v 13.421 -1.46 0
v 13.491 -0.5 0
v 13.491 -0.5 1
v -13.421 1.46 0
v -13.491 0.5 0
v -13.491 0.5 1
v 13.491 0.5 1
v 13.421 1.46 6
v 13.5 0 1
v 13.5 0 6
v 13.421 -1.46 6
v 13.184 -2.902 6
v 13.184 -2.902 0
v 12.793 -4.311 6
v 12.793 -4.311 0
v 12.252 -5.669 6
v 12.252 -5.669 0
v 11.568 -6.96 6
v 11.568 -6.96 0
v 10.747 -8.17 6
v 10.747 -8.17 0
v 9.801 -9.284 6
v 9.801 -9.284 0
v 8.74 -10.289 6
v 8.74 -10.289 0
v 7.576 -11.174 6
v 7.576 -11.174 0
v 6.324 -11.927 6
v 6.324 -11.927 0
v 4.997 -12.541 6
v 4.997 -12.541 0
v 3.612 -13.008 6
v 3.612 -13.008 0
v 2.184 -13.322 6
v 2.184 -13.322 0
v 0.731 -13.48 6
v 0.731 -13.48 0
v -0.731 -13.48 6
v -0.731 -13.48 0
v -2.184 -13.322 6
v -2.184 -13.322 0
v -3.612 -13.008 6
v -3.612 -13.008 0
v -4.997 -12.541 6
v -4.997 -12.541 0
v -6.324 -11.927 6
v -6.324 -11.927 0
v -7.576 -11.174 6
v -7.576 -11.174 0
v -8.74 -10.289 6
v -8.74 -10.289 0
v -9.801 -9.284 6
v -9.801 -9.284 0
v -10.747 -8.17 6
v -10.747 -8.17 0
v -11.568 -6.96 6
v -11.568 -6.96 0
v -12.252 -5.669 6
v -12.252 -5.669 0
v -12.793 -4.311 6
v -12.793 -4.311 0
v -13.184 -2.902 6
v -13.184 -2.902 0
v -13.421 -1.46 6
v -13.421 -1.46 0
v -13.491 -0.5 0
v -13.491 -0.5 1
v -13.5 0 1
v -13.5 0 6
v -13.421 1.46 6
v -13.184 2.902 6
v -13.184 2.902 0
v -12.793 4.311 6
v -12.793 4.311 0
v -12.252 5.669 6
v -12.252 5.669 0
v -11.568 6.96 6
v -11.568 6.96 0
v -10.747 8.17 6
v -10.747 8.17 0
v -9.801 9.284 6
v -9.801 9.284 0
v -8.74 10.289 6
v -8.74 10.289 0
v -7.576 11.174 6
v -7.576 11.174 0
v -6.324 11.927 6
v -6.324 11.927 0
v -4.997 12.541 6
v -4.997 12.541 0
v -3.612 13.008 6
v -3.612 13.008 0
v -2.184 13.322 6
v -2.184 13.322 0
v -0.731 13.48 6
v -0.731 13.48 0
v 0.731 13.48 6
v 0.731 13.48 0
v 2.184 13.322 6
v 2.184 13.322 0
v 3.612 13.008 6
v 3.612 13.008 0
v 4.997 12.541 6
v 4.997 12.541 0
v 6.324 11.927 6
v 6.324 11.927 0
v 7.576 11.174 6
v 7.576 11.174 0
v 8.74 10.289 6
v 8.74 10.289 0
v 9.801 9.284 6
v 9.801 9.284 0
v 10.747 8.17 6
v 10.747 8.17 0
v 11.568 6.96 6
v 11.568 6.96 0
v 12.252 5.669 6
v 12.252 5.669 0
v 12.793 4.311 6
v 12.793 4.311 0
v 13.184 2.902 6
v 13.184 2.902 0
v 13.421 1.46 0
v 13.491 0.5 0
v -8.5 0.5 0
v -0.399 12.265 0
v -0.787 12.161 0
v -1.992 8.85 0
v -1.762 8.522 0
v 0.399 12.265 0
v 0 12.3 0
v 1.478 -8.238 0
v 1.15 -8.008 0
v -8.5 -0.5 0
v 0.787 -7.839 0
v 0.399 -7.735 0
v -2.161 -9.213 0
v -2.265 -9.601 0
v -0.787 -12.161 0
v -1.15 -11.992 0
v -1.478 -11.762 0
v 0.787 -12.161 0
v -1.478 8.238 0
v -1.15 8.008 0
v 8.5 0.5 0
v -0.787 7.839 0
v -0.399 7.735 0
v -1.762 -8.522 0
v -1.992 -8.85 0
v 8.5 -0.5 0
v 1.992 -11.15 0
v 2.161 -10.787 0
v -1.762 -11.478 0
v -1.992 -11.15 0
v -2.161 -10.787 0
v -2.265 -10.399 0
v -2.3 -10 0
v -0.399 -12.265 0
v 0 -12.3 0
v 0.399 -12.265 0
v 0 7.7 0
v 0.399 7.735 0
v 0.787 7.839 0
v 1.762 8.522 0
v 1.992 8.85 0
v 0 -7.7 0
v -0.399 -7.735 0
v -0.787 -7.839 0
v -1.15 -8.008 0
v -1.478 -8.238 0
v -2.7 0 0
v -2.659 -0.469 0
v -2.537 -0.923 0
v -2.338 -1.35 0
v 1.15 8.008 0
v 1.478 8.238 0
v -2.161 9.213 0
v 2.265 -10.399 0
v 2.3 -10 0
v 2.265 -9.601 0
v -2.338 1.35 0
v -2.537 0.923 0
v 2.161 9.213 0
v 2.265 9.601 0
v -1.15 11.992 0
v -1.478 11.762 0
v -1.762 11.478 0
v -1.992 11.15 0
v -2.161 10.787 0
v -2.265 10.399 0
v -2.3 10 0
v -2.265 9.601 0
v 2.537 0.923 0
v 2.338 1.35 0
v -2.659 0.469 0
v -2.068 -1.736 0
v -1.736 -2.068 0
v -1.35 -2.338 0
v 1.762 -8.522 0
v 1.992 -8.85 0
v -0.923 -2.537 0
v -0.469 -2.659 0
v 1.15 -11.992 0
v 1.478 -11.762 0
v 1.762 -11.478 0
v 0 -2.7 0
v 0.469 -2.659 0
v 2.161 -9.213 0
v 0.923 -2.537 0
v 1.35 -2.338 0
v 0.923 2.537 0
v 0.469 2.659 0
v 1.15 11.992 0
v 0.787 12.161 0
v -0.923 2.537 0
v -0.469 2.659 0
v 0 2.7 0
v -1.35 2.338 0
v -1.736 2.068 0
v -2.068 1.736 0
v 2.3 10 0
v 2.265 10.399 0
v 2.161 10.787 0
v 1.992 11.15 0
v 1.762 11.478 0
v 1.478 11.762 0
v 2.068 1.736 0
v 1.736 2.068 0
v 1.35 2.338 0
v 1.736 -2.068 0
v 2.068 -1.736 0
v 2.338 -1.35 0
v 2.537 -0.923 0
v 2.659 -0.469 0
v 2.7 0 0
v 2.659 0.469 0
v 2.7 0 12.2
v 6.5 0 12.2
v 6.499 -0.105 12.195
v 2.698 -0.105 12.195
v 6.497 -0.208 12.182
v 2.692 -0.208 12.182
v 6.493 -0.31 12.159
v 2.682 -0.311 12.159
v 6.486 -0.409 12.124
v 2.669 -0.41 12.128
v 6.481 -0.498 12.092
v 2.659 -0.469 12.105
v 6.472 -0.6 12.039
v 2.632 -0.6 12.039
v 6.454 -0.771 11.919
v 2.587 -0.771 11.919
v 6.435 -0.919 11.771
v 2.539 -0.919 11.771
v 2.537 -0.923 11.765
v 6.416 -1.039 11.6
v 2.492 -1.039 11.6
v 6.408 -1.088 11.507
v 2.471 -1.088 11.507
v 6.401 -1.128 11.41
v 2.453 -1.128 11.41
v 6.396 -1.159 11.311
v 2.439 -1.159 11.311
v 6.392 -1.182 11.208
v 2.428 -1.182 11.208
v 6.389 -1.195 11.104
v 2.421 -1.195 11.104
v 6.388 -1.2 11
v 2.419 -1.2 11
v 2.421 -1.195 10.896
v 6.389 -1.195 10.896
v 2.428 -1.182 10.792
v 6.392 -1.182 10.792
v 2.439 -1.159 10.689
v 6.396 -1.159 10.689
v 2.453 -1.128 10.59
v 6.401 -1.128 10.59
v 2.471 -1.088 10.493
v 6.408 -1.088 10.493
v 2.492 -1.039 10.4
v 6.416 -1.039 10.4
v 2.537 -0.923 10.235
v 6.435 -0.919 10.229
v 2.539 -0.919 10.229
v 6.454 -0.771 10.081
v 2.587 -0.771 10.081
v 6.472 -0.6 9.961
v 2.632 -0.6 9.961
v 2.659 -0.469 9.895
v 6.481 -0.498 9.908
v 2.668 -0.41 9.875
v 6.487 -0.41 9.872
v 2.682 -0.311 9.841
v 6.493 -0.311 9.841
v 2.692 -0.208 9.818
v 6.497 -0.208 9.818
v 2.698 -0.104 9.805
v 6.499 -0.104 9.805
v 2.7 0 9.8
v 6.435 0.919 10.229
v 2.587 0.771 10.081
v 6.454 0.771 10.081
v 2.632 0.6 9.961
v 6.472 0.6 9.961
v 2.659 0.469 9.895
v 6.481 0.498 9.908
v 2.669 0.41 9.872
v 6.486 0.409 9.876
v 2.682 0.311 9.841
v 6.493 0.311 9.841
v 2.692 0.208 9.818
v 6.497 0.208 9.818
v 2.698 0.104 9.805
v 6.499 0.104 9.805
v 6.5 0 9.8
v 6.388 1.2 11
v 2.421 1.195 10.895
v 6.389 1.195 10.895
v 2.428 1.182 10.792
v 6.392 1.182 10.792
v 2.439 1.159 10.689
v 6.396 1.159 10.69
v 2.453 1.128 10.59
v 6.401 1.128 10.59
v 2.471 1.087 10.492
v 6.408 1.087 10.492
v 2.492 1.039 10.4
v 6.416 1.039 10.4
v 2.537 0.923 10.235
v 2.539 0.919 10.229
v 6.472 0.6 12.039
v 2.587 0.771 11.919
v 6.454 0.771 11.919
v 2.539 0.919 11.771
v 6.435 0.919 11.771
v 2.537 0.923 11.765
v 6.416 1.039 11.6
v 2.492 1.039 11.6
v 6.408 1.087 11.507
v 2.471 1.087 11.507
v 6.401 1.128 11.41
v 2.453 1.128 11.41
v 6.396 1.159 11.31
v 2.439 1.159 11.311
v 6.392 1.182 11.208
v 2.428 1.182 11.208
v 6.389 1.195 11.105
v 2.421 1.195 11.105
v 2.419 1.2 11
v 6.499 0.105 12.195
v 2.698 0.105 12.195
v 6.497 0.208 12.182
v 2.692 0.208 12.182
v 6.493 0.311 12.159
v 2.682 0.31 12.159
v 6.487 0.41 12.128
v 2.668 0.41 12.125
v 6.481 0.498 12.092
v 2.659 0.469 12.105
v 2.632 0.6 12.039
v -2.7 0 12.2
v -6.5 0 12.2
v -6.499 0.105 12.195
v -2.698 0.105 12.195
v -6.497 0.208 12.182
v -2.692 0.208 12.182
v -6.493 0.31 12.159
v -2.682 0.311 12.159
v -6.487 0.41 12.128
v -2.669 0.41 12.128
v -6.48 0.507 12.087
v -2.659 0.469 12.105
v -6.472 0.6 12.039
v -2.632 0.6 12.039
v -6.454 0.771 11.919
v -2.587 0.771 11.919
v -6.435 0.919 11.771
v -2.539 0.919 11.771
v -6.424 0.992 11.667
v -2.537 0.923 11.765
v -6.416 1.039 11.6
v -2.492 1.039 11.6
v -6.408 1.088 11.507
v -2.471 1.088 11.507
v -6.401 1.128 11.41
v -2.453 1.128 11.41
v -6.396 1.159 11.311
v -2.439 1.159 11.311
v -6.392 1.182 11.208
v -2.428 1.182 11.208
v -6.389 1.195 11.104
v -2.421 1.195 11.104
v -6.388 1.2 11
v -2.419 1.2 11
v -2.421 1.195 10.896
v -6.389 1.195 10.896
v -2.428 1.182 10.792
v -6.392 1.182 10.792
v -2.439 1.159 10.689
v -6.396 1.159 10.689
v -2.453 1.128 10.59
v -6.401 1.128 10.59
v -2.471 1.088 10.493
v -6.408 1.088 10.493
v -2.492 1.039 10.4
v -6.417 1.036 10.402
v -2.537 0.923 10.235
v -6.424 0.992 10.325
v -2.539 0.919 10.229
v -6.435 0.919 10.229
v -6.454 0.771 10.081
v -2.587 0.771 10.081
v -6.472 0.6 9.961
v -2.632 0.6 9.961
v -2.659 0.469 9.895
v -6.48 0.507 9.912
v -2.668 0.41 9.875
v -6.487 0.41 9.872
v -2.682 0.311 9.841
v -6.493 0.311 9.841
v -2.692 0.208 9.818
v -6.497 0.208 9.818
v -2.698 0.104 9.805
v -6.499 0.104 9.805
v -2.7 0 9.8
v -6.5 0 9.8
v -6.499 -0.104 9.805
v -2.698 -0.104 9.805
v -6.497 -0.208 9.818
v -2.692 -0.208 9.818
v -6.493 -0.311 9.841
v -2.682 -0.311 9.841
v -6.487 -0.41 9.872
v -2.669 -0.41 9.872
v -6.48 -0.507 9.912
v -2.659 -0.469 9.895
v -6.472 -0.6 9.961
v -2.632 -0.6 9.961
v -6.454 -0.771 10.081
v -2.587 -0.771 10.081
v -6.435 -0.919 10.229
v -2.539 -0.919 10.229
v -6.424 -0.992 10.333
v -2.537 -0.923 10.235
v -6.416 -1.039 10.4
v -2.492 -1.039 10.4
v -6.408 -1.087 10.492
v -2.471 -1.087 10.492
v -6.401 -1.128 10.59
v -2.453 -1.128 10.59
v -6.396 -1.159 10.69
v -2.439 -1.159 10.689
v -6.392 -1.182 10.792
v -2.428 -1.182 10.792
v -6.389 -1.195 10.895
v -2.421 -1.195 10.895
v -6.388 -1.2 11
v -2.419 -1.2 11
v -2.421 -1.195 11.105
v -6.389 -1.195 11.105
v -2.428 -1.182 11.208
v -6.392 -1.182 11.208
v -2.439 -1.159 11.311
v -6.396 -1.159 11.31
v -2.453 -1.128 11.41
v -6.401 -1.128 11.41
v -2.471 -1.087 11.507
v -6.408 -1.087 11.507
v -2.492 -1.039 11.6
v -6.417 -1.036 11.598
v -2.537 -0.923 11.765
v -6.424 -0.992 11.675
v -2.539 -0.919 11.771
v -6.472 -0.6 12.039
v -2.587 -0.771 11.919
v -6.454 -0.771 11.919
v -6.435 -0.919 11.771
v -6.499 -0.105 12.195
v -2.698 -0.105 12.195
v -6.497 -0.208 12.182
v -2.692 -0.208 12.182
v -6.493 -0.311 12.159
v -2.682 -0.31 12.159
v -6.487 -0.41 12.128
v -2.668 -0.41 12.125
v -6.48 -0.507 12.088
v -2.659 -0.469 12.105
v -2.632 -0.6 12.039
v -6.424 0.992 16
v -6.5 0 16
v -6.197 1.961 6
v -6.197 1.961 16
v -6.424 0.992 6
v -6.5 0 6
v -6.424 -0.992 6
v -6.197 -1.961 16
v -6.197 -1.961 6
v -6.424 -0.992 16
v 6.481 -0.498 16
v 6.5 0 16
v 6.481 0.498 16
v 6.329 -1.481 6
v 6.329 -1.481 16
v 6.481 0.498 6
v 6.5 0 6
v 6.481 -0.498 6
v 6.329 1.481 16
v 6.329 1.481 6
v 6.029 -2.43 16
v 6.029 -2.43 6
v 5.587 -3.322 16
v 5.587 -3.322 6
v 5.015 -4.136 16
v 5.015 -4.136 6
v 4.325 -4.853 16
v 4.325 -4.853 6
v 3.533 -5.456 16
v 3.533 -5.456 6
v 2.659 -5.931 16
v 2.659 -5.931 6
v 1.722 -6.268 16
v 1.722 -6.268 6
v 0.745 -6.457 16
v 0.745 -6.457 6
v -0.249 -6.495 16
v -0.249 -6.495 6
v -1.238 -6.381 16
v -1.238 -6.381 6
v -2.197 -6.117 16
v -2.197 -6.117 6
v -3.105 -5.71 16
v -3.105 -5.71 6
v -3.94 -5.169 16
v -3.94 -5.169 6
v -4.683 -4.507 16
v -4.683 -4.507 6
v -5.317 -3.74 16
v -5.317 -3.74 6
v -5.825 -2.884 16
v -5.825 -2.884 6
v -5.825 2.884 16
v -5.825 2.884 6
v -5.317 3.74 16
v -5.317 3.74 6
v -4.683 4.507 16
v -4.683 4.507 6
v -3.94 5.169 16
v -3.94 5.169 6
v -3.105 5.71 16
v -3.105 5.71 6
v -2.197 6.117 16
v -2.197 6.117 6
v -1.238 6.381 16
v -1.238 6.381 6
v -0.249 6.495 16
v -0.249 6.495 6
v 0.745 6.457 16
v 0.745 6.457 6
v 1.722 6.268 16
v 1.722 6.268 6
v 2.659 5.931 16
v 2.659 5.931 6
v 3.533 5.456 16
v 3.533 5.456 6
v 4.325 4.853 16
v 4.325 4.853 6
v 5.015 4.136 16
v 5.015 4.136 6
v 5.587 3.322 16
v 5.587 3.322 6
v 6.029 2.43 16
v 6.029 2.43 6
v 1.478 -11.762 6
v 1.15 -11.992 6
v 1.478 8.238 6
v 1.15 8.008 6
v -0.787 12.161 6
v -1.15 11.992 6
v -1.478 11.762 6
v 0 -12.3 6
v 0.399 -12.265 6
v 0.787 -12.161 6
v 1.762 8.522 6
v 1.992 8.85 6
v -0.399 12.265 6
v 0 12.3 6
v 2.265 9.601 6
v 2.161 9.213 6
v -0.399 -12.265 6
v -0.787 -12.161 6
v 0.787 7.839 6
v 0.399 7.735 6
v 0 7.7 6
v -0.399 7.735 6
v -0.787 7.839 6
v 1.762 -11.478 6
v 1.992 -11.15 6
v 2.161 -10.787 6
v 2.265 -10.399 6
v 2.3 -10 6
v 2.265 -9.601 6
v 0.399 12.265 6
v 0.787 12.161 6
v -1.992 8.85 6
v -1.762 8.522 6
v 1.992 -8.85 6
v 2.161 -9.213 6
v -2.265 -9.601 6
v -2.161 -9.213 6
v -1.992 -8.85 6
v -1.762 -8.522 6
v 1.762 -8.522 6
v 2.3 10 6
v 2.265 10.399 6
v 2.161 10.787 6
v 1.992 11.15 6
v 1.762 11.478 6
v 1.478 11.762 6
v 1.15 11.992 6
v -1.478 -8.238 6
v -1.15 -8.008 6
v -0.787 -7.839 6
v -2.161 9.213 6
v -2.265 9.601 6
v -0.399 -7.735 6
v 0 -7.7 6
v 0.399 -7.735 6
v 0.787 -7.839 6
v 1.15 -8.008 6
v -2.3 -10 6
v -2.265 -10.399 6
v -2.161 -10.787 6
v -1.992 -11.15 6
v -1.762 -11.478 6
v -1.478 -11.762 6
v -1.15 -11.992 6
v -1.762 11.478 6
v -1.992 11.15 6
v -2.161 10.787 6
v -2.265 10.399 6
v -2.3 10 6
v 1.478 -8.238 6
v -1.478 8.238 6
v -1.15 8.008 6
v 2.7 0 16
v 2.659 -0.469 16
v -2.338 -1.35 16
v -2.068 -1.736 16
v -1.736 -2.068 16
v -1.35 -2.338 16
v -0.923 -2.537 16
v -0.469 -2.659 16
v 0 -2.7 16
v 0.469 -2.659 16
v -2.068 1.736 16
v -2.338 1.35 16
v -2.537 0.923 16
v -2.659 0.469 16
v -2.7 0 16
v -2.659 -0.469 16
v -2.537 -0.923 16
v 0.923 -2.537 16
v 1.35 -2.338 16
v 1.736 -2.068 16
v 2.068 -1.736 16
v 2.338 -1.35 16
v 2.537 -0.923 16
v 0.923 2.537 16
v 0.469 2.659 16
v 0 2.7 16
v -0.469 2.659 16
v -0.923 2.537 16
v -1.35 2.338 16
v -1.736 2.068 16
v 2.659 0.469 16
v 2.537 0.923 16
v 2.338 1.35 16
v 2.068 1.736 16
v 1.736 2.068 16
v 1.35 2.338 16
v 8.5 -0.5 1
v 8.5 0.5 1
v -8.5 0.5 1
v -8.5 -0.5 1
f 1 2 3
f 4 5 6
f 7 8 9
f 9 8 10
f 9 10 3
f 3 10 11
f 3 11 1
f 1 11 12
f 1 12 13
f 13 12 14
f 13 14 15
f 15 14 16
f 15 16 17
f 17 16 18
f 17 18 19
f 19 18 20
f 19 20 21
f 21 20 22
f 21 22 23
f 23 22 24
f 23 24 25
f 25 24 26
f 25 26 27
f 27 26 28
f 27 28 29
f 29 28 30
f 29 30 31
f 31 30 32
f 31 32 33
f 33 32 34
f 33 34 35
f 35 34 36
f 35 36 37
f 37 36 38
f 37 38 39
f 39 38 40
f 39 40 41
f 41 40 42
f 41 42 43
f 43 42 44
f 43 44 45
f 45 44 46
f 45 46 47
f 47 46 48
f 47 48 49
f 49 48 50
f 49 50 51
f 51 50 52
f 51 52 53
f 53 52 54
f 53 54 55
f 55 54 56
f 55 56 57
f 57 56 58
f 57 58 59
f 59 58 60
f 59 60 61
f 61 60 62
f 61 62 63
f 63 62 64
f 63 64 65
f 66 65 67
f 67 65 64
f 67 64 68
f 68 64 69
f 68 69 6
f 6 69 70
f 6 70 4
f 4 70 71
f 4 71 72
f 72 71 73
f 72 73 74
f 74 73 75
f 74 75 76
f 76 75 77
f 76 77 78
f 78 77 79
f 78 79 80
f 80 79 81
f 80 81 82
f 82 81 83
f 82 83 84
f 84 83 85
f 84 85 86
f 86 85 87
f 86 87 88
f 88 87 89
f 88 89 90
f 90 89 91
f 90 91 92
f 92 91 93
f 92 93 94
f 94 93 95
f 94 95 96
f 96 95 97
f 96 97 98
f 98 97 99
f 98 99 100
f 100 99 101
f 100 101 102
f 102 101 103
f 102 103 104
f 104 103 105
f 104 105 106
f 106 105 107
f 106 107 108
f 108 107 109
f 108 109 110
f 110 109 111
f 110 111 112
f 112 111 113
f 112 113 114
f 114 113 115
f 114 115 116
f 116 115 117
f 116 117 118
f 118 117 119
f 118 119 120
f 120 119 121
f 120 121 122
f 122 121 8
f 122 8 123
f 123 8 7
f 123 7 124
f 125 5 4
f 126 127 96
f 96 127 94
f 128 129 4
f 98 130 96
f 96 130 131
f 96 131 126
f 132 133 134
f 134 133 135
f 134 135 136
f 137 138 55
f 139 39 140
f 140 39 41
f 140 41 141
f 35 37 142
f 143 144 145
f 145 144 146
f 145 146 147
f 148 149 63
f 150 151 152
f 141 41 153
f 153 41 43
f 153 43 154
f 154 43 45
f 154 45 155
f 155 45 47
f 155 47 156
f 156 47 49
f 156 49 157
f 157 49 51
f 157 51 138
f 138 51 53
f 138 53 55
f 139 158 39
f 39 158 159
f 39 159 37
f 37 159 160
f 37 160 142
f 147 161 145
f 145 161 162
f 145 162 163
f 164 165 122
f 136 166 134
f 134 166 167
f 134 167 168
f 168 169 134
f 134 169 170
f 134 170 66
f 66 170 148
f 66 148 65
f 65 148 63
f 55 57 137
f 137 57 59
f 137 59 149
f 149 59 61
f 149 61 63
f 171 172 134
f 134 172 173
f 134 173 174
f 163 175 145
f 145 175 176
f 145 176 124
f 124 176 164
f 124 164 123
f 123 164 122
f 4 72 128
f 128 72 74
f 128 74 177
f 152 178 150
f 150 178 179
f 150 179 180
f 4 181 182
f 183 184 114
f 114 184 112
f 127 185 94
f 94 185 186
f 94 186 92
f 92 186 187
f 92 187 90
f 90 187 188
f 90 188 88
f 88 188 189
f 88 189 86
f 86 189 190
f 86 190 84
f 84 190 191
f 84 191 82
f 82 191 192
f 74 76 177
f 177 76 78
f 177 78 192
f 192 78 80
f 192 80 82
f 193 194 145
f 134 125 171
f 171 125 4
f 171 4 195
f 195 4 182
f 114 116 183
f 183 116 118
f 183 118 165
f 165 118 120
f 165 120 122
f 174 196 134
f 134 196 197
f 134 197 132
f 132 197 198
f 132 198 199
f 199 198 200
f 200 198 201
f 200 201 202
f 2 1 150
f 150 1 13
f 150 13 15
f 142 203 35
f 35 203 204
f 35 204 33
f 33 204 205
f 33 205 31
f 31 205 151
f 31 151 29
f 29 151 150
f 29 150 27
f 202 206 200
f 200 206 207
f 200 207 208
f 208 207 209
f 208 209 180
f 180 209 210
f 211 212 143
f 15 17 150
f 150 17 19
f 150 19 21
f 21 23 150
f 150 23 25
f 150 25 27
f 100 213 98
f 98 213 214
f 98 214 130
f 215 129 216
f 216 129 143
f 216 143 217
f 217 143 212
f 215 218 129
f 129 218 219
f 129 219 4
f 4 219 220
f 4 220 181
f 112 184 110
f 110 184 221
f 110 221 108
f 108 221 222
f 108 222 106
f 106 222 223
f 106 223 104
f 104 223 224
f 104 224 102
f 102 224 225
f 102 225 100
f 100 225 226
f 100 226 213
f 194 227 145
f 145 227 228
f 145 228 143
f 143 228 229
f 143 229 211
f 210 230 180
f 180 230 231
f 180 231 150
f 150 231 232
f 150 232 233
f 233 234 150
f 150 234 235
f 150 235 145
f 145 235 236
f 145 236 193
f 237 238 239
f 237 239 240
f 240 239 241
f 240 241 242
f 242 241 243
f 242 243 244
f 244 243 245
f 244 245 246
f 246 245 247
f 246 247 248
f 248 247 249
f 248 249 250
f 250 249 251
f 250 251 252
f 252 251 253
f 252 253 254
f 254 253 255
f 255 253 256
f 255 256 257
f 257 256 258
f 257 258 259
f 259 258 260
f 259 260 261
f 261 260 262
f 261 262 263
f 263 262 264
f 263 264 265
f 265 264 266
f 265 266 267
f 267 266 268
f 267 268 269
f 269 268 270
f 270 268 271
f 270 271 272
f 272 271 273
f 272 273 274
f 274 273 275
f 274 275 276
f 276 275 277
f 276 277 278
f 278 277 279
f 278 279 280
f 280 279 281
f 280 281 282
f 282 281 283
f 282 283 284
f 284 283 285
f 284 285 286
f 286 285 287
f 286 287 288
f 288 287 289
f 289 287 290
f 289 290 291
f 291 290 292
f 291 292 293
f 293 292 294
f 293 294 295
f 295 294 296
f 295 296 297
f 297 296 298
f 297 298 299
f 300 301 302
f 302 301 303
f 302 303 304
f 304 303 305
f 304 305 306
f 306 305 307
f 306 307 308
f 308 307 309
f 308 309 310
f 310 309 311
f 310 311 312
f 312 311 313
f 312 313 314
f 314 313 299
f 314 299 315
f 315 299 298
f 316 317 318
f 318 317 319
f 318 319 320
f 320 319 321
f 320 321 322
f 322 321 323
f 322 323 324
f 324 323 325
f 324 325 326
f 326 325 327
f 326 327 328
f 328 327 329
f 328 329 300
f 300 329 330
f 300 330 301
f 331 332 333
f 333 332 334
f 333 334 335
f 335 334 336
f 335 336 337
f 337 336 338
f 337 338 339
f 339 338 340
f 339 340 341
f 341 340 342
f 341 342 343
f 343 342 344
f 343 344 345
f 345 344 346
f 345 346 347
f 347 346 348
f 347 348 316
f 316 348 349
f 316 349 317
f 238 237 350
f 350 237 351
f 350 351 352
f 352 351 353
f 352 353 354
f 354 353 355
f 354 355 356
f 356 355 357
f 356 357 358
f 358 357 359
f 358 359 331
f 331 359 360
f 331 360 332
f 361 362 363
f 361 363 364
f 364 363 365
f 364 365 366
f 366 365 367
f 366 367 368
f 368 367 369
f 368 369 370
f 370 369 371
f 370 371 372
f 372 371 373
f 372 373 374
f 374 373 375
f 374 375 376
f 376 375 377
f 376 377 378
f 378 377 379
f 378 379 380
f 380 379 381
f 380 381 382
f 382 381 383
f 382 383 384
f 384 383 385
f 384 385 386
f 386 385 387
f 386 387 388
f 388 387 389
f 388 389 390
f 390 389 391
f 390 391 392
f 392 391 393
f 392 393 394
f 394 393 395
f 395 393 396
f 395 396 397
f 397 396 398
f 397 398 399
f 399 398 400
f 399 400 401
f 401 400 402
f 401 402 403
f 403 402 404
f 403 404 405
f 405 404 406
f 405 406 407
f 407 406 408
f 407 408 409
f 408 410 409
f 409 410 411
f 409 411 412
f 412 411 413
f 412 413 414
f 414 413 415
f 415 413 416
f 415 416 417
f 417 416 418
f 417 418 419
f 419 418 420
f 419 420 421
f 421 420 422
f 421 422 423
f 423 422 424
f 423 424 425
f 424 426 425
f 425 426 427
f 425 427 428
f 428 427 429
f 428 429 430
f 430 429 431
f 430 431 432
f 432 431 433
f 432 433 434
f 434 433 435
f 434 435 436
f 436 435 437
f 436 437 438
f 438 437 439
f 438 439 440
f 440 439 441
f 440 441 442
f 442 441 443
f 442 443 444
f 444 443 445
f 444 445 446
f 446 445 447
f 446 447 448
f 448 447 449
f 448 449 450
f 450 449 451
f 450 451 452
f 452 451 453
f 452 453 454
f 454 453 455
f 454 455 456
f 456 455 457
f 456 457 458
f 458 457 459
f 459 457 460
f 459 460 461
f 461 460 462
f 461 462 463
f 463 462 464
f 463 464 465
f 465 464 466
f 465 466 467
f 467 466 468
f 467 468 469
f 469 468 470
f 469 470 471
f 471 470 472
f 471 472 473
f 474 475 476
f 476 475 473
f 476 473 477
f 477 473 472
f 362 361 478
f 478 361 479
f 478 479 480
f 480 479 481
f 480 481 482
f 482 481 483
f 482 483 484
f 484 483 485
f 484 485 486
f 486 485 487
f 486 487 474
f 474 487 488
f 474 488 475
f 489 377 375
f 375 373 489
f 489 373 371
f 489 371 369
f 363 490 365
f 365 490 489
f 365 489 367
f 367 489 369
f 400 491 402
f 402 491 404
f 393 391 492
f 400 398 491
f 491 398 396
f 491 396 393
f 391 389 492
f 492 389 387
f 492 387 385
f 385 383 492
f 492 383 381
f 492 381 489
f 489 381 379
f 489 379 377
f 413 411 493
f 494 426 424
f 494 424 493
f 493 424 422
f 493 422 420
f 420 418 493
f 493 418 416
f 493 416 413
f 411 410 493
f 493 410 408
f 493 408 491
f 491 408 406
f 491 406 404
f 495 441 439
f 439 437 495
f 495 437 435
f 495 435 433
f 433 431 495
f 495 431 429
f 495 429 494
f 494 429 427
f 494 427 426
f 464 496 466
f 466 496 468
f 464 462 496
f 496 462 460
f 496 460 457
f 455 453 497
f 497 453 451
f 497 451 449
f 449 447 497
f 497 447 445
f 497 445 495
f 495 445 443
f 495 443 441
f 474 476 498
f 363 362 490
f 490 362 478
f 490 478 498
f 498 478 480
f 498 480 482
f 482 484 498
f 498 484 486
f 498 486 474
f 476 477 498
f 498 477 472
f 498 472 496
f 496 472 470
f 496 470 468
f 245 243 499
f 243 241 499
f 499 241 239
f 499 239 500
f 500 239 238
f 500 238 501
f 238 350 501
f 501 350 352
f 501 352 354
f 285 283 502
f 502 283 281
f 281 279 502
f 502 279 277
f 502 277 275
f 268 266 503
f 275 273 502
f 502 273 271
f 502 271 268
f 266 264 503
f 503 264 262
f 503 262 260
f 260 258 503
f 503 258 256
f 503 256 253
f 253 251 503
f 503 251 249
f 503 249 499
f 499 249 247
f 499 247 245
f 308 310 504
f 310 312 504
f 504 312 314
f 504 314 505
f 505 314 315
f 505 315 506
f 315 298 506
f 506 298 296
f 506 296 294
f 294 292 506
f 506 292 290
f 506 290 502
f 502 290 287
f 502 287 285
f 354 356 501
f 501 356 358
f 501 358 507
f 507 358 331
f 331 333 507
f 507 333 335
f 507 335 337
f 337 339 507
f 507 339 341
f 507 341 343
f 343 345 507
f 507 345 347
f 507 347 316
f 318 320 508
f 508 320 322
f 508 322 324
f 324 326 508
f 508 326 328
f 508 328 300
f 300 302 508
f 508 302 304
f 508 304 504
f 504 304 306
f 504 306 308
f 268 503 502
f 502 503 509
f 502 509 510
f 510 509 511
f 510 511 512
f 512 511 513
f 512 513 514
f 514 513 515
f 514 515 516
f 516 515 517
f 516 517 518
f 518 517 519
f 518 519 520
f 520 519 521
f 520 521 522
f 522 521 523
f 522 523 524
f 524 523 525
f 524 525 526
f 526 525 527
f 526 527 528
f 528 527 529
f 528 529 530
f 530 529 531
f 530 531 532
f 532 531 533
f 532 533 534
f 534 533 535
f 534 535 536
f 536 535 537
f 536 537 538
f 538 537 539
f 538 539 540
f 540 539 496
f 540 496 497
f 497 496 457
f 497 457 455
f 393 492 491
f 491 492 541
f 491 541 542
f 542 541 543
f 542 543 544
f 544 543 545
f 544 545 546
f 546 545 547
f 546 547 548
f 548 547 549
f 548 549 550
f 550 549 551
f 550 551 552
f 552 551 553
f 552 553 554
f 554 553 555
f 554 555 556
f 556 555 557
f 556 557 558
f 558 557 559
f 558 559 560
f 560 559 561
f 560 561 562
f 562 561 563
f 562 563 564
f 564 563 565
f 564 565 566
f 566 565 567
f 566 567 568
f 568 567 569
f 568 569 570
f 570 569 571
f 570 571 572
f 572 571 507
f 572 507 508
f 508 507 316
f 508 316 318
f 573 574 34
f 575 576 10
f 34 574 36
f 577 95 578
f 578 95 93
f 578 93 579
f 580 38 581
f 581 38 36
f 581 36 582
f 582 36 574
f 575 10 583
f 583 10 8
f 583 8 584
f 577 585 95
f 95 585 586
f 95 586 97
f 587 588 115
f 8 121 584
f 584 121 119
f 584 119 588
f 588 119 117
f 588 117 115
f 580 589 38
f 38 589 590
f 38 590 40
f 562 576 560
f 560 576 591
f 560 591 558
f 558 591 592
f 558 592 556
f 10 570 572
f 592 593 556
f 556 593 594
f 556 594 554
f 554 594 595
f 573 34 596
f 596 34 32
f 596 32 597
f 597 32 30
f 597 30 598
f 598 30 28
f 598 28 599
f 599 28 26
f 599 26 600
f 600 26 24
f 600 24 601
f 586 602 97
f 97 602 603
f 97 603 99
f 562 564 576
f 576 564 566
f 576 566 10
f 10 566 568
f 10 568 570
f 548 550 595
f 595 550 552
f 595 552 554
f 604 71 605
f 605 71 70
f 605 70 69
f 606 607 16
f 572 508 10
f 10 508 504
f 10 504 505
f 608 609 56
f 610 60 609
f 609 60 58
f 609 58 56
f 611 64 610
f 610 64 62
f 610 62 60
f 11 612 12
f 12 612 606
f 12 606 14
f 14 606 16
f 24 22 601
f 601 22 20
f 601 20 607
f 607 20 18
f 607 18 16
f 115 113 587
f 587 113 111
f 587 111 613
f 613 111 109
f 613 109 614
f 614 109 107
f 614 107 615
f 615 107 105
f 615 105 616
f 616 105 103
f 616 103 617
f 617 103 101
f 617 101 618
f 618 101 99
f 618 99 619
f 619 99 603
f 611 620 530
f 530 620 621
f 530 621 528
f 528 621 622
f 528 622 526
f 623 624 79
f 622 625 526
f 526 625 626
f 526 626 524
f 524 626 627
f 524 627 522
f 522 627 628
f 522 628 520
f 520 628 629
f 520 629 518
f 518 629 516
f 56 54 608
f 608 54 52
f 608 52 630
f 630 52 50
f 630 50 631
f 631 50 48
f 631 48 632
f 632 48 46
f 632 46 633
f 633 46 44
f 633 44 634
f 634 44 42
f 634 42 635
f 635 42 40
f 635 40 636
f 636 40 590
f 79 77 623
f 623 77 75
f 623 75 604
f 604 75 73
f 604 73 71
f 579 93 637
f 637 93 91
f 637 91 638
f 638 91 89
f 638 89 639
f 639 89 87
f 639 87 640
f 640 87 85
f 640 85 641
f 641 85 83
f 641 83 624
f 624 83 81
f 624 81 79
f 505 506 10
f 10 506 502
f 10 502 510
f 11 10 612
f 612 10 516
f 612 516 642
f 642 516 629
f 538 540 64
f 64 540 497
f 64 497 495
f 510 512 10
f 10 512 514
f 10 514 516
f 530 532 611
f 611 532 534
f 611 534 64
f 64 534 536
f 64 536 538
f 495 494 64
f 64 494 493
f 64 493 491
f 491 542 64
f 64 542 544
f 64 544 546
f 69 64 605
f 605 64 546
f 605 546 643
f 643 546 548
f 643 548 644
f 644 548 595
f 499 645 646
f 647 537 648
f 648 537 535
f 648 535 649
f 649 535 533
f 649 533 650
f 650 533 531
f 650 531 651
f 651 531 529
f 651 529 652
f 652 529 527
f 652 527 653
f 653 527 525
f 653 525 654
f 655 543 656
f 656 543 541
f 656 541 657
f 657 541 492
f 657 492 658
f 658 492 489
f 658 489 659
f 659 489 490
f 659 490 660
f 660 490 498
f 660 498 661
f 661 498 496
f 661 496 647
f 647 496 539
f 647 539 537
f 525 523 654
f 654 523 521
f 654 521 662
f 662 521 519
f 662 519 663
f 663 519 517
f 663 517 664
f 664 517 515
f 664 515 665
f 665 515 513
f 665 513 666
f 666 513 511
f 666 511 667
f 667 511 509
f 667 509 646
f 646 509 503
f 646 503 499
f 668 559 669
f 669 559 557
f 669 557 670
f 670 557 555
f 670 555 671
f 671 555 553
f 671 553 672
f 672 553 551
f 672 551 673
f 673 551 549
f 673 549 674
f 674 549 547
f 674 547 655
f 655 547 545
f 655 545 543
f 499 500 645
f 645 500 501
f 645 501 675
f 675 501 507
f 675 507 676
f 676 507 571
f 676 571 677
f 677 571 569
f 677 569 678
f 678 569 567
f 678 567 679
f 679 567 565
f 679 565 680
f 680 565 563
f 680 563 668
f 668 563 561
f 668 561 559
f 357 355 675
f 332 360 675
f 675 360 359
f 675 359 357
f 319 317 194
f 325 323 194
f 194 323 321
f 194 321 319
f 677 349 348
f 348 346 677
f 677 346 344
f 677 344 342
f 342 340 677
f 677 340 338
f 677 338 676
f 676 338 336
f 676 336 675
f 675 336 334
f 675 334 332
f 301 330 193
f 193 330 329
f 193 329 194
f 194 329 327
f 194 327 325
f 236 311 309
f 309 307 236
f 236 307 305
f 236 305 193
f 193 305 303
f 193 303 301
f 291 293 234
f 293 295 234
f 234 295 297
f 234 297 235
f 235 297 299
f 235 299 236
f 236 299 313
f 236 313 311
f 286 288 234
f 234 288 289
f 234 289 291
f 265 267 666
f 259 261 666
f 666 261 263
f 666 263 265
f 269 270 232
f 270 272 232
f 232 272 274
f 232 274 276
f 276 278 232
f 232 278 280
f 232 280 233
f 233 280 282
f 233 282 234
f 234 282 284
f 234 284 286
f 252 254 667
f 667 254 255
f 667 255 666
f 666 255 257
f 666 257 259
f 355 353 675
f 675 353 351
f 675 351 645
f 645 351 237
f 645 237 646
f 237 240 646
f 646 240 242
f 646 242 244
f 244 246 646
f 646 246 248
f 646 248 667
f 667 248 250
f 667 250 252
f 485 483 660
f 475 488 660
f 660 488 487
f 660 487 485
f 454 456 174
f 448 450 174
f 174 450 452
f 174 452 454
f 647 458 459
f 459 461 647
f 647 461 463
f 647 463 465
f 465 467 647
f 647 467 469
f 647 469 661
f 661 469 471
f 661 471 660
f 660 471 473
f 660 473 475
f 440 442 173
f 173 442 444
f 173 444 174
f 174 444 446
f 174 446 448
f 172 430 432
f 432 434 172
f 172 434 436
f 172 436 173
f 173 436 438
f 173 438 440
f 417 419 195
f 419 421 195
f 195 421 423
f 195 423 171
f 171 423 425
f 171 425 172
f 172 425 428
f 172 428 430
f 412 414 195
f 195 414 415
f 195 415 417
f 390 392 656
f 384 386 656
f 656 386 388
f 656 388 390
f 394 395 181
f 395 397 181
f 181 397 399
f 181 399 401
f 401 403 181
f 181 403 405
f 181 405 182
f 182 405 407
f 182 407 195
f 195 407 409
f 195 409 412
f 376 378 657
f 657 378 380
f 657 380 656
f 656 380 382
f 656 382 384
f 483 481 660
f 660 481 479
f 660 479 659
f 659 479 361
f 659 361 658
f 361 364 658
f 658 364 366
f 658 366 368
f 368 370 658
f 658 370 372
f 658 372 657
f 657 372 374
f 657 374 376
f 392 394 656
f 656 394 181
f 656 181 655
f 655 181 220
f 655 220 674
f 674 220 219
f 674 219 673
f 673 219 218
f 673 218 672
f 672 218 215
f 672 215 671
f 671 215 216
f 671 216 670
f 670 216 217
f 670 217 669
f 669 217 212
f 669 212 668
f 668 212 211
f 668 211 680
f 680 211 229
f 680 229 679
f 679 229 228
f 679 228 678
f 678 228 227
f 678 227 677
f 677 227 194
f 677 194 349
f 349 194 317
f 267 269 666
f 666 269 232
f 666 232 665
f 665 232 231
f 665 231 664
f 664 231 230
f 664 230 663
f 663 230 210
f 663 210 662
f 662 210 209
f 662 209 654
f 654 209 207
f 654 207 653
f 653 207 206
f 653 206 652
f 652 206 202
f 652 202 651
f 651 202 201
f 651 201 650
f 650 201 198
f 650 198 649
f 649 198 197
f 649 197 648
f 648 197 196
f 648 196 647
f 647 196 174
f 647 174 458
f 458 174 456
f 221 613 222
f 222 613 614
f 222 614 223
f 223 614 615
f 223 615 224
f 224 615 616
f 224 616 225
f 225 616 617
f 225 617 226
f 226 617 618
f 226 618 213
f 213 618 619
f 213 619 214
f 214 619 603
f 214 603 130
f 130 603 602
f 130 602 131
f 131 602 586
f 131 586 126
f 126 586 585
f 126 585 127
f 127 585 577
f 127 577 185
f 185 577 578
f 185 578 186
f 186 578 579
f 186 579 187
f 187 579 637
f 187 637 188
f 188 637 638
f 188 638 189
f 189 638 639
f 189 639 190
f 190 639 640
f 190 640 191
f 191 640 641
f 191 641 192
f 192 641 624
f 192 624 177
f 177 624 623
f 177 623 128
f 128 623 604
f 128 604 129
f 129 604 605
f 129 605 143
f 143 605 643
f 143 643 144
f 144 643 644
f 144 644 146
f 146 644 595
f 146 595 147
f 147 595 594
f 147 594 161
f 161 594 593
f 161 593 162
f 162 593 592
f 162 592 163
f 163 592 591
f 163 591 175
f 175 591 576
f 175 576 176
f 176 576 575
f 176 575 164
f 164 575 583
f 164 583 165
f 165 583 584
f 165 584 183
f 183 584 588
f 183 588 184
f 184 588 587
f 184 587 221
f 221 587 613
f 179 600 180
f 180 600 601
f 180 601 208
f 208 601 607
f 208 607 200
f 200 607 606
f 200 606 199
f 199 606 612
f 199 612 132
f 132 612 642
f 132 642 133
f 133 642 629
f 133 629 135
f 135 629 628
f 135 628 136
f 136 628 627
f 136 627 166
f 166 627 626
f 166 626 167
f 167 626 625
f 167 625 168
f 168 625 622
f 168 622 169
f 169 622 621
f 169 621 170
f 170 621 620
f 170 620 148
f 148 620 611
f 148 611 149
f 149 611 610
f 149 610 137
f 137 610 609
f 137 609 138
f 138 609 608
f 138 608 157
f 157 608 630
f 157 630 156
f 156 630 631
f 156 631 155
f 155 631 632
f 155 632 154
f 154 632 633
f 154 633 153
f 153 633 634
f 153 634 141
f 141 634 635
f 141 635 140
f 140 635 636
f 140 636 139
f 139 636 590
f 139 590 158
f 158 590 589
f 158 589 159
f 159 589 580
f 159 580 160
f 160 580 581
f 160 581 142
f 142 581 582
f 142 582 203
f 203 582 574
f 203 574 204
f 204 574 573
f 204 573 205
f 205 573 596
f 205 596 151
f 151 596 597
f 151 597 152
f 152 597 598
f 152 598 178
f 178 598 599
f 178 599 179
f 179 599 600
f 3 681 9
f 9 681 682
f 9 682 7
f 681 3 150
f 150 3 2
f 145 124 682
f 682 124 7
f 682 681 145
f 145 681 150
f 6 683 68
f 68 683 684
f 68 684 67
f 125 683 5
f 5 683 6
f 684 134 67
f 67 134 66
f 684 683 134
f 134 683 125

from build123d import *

# Parameters (mm, degrees)
SKETCH2_R               = 13.5
BOSS_EXTRUDE1_DEPTH     = 6
SKETCH3_R               = 6.5
SKETCH3_R_2             = 2.5
BOSS_EXTRUDE2_DEPTH     = 10
CUT_EXTRUDE1_DEPTH      = 25
CUT_EXTRUDE1_DEPTH_BACK = 25
SKETCH4_R               = 1.2
CUT_EXTRUDE3_DEPTH      = 50
CUT_EXTRUDE3_DEPTH_BACK = 20
SKETCH6_R               = 2.7
SKETCH5_R               = 2.3
CUT_EXTRUDE4_DEPTH      = 10
SKETCH8_W               = 10
SKETCH8_H               = 1
CUT_EXTRUDE5_DEPTH      = 1


with BuildPart() as part:
    # Sketch2 → Boss-Extrude1 (new body)
    with BuildSketch(Plane.XY):
        Circle(SKETCH2_R)
    extrude(amount=BOSS_EXTRUDE1_DEPTH)

    # Sketch3 → Boss-Extrude2 (add)
    with BuildSketch(Plane.XY.offset(6)):
        Circle(SKETCH3_R)
        Circle(SKETCH3_R_2, mode=Mode.SUBTRACT)
    extrude(amount=BOSS_EXTRUDE2_DEPTH)

    # Sketch4 → Cut-Extrude1 (cut, two sides: drawn at the far end of the back side and taken through both)
    with BuildSketch(Plane(origin=(0, 0, 0), x_dir=(0, -1, 0), z_dir=(1, 0, 0)).offset(-CUT_EXTRUDE1_DEPTH_BACK)):
        with Locations((0, -11)):
            Circle(SKETCH4_R)
    extrude(amount=CUT_EXTRUDE1_DEPTH + CUT_EXTRUDE1_DEPTH_BACK, mode=Mode.SUBTRACT)

    # Sketch6 → Cut-Extrude3 (cut, two sides: drawn at the far end of the back side and taken through both)
    with BuildSketch(Plane.XY.offset(6).offset(-CUT_EXTRUDE3_DEPTH_BACK)):
        Circle(SKETCH6_R)
    extrude(amount=CUT_EXTRUDE3_DEPTH + CUT_EXTRUDE3_DEPTH_BACK, mode=Mode.SUBTRACT)

    # Sketch5 → Cut-Extrude4 (cut)
    with BuildSketch(Plane.XY.offset(6)):
        with Locations((0, 10)):
            Circle(SKETCH5_R)
    cut_extrude4 = extrude(amount=-CUT_EXTRUDE4_DEPTH, mode=Mode.SUBTRACT)

    # Mirror1: Cut-Extrude4 across plane
    add(cut_extrude4.mirror(Plane.ZX), mode=Mode.SUBTRACT)

    # Sketch8 → Cut-Extrude5 (cut)
    with BuildSketch(Plane(origin=(0, 0, 0), x_dir=(-1, 0, 0), z_dir=(0, 0, -1))):
        with Locations((-13.5, 0)):
            Rectangle(SKETCH8_W, SKETCH8_H)
    cut_extrude5 = extrude(amount=-CUT_EXTRUDE5_DEPTH, mode=Mode.SUBTRACT)

    # Mirror2: Cut-Extrude5 across plane
    add(cut_extrude5.mirror(Plane(origin=(0, 0, 0), x_dir=(0, 0, 1), z_dir=(1, 0, 0))), mode=Mode.SUBTRACT)


solid = part.part
